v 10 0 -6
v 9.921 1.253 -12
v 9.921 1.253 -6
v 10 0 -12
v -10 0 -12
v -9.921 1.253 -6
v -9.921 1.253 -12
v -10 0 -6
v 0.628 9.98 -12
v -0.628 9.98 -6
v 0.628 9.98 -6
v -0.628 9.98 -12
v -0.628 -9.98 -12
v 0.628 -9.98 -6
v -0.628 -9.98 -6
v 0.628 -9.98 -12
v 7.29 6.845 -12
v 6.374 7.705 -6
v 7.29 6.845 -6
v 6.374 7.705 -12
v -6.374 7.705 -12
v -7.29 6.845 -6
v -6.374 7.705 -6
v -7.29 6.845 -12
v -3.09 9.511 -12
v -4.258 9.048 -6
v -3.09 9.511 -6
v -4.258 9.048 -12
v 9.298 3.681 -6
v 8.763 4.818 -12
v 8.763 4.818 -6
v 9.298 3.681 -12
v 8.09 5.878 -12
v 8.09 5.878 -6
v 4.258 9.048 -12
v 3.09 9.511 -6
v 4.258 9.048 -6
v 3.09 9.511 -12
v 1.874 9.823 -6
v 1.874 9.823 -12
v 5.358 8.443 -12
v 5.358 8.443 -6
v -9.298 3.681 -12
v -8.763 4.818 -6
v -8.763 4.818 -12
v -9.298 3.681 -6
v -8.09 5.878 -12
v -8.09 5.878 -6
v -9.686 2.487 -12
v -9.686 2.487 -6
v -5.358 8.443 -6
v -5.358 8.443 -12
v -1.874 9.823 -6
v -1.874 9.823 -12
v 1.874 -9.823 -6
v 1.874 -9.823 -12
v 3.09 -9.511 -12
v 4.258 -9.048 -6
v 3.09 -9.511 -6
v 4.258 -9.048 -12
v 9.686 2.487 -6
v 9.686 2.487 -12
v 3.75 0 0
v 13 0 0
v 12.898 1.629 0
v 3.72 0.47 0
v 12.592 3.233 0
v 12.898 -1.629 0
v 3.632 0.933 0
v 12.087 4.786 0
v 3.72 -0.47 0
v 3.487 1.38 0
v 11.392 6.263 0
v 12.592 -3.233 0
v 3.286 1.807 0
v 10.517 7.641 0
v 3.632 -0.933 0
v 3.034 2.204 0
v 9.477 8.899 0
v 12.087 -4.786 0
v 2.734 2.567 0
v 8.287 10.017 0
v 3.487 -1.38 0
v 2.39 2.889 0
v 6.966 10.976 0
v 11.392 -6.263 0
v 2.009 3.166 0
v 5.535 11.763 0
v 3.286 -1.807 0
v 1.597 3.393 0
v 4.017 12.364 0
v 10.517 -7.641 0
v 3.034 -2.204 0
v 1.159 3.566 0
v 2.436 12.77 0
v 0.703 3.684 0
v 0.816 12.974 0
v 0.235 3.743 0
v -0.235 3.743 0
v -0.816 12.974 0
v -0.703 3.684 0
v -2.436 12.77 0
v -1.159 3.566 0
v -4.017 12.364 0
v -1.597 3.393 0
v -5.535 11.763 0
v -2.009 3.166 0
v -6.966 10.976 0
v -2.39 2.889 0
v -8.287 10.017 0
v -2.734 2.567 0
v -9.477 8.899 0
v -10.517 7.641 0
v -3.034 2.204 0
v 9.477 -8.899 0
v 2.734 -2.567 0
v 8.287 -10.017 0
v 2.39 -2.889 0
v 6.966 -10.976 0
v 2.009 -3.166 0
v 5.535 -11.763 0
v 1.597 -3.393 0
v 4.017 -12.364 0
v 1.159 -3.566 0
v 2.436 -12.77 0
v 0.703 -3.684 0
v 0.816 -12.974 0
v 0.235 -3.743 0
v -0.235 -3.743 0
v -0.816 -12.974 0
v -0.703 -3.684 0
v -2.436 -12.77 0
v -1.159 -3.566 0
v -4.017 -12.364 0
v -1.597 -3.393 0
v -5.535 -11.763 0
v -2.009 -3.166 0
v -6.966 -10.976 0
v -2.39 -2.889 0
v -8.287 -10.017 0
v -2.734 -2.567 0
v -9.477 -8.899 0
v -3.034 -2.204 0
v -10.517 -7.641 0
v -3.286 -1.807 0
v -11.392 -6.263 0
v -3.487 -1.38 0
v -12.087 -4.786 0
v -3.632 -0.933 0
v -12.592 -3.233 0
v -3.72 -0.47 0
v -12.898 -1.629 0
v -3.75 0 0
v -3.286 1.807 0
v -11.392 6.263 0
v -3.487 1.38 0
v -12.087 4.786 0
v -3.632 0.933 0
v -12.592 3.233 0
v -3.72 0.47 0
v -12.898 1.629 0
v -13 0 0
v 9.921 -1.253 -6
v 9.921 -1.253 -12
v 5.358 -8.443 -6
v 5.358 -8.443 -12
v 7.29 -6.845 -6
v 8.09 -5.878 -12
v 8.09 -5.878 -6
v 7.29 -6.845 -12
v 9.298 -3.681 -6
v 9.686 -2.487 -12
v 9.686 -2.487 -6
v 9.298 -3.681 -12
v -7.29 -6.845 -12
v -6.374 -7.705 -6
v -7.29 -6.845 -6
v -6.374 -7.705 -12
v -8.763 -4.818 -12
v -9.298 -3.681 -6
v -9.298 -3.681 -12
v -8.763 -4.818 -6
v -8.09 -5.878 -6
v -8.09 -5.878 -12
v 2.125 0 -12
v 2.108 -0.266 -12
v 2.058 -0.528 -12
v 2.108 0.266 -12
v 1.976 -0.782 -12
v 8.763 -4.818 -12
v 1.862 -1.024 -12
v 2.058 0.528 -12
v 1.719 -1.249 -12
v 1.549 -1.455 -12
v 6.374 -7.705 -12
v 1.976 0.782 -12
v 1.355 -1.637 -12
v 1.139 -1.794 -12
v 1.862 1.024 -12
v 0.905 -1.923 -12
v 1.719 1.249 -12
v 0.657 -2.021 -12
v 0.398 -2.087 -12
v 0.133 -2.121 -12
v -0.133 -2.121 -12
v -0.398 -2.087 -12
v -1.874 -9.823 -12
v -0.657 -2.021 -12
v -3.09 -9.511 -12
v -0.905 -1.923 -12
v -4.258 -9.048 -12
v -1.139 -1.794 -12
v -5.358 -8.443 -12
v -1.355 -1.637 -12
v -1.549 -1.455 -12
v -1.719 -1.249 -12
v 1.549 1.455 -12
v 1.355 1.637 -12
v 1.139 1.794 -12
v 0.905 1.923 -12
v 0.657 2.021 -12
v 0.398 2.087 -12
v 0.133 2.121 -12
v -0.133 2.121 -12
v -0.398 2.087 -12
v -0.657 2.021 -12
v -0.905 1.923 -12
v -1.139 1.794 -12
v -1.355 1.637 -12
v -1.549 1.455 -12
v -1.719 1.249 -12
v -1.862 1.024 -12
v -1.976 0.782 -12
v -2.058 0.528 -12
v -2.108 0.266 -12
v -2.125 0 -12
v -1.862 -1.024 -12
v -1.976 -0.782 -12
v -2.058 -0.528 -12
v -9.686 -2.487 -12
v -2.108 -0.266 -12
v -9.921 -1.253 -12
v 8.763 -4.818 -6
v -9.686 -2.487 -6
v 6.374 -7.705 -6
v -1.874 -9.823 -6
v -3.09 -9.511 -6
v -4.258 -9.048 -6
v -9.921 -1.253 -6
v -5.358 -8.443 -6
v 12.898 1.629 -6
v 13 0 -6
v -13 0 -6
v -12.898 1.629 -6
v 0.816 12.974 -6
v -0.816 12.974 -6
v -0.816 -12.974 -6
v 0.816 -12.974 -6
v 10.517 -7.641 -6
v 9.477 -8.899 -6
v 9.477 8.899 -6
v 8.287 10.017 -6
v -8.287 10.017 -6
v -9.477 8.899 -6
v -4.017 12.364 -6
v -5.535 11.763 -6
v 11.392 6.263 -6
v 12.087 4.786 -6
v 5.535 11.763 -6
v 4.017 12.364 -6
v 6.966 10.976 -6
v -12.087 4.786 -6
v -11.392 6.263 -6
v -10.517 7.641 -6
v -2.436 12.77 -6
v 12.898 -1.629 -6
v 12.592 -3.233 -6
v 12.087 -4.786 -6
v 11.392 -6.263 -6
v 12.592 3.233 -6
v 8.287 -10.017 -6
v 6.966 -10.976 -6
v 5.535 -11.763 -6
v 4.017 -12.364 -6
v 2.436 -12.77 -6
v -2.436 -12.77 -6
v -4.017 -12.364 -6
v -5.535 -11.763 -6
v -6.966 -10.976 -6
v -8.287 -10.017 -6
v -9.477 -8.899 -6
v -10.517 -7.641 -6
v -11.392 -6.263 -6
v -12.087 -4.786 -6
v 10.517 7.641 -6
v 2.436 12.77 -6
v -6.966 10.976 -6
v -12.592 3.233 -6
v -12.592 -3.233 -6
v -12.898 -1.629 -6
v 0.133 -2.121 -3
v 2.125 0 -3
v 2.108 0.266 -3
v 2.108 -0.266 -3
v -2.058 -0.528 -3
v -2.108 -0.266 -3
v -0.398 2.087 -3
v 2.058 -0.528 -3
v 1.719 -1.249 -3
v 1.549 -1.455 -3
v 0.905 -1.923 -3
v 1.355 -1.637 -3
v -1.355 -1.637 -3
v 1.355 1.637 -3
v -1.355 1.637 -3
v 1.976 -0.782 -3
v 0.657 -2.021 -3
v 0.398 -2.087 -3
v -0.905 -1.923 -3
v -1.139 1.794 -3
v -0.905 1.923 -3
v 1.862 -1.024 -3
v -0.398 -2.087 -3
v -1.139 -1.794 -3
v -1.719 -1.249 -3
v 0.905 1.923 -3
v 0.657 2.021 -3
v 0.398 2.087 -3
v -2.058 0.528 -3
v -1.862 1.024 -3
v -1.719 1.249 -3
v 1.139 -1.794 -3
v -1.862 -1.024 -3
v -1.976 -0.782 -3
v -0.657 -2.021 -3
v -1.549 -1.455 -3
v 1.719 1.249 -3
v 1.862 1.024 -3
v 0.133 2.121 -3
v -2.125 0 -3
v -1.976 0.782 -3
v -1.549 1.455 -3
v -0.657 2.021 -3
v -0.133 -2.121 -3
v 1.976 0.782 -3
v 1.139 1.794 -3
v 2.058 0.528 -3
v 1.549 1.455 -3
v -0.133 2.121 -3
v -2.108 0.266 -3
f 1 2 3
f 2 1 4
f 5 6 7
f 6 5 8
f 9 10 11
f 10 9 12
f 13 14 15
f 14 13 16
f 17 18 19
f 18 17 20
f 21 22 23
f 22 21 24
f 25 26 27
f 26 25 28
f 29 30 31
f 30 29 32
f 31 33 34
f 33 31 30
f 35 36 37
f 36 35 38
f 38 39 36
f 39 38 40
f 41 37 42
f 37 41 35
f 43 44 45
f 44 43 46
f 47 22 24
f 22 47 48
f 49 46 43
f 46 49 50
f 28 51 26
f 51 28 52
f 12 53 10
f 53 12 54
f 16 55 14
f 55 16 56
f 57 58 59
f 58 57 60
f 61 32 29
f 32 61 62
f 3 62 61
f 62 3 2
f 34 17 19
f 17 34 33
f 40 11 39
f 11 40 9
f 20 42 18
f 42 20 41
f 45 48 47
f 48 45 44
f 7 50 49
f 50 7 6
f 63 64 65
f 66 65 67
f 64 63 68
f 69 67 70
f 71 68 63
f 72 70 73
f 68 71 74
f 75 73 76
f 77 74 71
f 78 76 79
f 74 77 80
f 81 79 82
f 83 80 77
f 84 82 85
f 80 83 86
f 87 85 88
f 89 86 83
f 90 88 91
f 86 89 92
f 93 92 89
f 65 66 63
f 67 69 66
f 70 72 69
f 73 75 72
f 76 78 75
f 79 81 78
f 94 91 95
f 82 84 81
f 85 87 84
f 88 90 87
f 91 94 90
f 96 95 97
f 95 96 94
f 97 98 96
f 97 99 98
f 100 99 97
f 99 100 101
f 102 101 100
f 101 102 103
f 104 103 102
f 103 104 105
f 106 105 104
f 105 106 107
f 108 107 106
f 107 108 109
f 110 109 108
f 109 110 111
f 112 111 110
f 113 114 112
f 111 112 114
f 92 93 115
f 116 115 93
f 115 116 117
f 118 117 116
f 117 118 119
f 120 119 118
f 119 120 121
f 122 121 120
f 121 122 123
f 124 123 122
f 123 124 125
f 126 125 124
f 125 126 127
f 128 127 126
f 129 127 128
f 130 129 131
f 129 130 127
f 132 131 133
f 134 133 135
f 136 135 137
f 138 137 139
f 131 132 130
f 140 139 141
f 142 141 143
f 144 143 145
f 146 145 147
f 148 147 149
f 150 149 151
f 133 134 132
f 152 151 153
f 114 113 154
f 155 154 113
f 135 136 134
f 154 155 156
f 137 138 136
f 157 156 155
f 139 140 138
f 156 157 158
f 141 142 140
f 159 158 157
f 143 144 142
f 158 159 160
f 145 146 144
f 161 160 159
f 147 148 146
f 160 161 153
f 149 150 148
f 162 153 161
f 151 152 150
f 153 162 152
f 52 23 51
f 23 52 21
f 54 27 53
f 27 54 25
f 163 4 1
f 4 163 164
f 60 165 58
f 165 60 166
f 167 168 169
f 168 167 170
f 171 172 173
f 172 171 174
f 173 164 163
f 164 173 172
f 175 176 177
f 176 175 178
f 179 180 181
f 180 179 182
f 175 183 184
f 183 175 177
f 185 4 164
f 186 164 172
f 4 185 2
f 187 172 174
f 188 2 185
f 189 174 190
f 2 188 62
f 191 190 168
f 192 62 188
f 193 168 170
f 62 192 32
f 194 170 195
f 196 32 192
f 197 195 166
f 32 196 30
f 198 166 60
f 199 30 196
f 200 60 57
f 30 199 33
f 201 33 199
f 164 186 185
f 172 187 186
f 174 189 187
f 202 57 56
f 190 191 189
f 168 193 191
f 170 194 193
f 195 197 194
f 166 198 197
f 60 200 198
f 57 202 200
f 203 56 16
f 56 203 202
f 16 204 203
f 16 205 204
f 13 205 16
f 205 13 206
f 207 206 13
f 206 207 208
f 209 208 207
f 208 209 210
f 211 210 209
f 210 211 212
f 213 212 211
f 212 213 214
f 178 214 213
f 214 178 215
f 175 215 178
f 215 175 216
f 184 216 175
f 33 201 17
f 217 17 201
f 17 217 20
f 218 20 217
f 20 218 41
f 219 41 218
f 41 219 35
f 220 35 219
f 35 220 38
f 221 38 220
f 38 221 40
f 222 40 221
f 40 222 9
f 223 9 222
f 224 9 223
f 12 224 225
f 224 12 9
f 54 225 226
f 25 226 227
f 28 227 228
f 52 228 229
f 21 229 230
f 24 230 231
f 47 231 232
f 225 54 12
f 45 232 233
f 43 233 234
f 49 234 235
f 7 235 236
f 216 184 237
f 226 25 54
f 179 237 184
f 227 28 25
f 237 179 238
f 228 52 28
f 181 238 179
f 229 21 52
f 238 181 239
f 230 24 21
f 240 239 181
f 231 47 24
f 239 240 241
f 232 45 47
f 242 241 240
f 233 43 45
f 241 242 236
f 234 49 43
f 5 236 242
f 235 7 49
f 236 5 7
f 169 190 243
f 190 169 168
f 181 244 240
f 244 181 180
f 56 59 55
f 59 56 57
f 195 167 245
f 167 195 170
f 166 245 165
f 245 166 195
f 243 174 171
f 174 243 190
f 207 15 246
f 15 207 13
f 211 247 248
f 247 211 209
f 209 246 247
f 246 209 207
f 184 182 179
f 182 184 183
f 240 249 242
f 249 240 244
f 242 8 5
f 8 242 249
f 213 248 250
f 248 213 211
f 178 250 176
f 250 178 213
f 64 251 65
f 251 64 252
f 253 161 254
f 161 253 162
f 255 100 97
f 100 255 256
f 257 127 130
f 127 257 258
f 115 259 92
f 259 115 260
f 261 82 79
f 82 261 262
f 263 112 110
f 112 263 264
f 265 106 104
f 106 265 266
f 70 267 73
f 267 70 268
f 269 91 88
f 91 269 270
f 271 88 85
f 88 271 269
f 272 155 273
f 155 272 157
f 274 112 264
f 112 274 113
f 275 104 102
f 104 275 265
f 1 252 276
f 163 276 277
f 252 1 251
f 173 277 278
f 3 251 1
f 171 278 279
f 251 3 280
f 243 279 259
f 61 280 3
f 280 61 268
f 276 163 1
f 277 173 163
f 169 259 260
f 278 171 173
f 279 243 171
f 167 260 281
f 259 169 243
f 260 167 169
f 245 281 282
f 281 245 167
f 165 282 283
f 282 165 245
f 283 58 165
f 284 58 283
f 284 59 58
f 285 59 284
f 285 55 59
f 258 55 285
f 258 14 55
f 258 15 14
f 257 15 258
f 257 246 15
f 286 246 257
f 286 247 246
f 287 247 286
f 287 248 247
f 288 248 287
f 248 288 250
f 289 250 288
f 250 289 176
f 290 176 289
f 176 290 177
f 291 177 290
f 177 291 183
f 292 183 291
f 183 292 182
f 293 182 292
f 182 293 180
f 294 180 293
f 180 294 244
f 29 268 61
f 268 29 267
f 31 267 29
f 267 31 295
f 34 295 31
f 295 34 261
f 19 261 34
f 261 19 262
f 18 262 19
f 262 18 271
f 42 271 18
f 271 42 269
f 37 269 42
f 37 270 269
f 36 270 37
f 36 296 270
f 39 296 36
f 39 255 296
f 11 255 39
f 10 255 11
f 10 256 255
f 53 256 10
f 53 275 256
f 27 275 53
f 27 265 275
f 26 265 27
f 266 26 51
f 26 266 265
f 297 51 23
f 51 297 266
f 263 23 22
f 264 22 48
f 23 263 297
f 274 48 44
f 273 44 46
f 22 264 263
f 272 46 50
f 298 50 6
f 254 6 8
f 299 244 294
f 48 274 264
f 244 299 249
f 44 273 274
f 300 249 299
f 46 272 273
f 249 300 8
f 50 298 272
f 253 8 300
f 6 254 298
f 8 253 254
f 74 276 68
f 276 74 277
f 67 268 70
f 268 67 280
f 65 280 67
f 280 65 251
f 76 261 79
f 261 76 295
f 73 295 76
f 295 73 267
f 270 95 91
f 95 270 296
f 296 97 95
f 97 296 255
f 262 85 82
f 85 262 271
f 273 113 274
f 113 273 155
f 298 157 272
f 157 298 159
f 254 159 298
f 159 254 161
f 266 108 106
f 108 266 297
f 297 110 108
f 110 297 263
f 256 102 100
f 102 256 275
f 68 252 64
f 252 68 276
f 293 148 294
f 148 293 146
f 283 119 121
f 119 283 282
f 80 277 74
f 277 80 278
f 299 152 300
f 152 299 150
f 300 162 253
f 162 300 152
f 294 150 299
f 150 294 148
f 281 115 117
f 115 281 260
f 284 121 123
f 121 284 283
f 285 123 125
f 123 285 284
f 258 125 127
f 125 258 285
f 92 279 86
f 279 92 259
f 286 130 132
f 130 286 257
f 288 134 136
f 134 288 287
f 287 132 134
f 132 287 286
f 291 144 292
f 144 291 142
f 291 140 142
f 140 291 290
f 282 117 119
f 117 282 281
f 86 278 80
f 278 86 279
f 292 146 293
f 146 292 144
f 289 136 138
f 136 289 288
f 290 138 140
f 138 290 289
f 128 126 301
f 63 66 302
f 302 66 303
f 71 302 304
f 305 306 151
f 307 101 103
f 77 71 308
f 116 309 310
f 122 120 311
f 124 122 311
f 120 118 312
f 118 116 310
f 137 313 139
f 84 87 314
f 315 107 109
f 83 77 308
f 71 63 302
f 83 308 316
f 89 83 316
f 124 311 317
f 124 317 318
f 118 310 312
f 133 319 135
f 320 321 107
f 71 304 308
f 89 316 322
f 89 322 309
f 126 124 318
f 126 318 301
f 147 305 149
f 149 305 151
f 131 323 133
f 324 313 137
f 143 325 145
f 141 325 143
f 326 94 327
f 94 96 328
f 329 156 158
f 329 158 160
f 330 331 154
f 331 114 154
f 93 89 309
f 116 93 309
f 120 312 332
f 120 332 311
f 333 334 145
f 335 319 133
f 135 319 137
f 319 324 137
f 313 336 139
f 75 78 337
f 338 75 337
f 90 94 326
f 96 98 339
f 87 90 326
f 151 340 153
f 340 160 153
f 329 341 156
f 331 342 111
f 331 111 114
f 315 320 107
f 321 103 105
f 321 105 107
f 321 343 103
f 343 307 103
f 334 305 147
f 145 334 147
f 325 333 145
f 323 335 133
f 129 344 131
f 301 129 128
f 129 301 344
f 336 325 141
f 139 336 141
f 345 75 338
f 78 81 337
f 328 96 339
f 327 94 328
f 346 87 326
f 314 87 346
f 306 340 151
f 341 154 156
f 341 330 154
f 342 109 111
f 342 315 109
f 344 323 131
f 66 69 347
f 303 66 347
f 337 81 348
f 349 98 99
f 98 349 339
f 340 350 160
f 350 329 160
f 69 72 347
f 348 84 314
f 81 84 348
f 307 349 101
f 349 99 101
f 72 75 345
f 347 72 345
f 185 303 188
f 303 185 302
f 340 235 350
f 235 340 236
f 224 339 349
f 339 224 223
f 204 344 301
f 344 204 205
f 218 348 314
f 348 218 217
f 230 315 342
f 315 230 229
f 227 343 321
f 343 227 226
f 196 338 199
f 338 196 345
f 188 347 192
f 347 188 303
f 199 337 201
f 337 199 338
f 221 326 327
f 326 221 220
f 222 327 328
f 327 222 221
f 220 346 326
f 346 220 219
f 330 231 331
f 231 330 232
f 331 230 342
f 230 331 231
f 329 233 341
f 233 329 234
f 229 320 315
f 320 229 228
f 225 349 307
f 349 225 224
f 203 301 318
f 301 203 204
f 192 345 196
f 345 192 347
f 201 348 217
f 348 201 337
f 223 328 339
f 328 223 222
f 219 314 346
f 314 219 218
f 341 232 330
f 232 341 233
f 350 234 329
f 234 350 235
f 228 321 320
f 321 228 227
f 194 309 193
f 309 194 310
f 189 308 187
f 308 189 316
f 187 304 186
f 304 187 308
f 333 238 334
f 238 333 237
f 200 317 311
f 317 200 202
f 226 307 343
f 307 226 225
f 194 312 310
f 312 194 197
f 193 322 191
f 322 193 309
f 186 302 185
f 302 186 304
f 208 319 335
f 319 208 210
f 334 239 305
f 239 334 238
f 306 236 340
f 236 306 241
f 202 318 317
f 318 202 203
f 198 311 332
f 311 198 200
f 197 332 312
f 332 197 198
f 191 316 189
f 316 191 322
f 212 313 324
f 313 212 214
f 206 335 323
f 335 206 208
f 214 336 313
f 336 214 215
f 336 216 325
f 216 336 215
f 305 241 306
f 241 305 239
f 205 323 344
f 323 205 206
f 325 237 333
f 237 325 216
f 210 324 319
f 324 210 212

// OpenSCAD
$fn = 50;


difference() {
	union() {
		translate(v = [0, 0, -12.0000000000]) {
			cylinder(h = 12, r = 10.0000000000);
		}
		translate(v = [0, 0, -6.0000000000]) {
			cylinder(h = 6, r = 13.0000000000);
		}
	}
	union() {
		translate(v = [0, 0, 0]) {
			rotate(a = [0, 0, 0]) {
				difference() {
					union() {
						#translate(v = [0, 0, -12.0000000000]) {
							cylinder(h = 12, r = 2.0000000000);
						}
						#translate(v = [0, 0, -3]) {
							cylinder(h = 3, r1 = 2.1250000000, r2 = 3.7500000000);
						}
						#translate(v = [0, 0, -12.0000000000]) {
							cylinder(h = 12, r = 2.1250000000);
						}
						#translate(v = [0, 0, -12.0000000000]) {
							cylinder(h = 12, r = 2.0000000000);
						}
					}
					union();
				}
			}
		}
	}
}
